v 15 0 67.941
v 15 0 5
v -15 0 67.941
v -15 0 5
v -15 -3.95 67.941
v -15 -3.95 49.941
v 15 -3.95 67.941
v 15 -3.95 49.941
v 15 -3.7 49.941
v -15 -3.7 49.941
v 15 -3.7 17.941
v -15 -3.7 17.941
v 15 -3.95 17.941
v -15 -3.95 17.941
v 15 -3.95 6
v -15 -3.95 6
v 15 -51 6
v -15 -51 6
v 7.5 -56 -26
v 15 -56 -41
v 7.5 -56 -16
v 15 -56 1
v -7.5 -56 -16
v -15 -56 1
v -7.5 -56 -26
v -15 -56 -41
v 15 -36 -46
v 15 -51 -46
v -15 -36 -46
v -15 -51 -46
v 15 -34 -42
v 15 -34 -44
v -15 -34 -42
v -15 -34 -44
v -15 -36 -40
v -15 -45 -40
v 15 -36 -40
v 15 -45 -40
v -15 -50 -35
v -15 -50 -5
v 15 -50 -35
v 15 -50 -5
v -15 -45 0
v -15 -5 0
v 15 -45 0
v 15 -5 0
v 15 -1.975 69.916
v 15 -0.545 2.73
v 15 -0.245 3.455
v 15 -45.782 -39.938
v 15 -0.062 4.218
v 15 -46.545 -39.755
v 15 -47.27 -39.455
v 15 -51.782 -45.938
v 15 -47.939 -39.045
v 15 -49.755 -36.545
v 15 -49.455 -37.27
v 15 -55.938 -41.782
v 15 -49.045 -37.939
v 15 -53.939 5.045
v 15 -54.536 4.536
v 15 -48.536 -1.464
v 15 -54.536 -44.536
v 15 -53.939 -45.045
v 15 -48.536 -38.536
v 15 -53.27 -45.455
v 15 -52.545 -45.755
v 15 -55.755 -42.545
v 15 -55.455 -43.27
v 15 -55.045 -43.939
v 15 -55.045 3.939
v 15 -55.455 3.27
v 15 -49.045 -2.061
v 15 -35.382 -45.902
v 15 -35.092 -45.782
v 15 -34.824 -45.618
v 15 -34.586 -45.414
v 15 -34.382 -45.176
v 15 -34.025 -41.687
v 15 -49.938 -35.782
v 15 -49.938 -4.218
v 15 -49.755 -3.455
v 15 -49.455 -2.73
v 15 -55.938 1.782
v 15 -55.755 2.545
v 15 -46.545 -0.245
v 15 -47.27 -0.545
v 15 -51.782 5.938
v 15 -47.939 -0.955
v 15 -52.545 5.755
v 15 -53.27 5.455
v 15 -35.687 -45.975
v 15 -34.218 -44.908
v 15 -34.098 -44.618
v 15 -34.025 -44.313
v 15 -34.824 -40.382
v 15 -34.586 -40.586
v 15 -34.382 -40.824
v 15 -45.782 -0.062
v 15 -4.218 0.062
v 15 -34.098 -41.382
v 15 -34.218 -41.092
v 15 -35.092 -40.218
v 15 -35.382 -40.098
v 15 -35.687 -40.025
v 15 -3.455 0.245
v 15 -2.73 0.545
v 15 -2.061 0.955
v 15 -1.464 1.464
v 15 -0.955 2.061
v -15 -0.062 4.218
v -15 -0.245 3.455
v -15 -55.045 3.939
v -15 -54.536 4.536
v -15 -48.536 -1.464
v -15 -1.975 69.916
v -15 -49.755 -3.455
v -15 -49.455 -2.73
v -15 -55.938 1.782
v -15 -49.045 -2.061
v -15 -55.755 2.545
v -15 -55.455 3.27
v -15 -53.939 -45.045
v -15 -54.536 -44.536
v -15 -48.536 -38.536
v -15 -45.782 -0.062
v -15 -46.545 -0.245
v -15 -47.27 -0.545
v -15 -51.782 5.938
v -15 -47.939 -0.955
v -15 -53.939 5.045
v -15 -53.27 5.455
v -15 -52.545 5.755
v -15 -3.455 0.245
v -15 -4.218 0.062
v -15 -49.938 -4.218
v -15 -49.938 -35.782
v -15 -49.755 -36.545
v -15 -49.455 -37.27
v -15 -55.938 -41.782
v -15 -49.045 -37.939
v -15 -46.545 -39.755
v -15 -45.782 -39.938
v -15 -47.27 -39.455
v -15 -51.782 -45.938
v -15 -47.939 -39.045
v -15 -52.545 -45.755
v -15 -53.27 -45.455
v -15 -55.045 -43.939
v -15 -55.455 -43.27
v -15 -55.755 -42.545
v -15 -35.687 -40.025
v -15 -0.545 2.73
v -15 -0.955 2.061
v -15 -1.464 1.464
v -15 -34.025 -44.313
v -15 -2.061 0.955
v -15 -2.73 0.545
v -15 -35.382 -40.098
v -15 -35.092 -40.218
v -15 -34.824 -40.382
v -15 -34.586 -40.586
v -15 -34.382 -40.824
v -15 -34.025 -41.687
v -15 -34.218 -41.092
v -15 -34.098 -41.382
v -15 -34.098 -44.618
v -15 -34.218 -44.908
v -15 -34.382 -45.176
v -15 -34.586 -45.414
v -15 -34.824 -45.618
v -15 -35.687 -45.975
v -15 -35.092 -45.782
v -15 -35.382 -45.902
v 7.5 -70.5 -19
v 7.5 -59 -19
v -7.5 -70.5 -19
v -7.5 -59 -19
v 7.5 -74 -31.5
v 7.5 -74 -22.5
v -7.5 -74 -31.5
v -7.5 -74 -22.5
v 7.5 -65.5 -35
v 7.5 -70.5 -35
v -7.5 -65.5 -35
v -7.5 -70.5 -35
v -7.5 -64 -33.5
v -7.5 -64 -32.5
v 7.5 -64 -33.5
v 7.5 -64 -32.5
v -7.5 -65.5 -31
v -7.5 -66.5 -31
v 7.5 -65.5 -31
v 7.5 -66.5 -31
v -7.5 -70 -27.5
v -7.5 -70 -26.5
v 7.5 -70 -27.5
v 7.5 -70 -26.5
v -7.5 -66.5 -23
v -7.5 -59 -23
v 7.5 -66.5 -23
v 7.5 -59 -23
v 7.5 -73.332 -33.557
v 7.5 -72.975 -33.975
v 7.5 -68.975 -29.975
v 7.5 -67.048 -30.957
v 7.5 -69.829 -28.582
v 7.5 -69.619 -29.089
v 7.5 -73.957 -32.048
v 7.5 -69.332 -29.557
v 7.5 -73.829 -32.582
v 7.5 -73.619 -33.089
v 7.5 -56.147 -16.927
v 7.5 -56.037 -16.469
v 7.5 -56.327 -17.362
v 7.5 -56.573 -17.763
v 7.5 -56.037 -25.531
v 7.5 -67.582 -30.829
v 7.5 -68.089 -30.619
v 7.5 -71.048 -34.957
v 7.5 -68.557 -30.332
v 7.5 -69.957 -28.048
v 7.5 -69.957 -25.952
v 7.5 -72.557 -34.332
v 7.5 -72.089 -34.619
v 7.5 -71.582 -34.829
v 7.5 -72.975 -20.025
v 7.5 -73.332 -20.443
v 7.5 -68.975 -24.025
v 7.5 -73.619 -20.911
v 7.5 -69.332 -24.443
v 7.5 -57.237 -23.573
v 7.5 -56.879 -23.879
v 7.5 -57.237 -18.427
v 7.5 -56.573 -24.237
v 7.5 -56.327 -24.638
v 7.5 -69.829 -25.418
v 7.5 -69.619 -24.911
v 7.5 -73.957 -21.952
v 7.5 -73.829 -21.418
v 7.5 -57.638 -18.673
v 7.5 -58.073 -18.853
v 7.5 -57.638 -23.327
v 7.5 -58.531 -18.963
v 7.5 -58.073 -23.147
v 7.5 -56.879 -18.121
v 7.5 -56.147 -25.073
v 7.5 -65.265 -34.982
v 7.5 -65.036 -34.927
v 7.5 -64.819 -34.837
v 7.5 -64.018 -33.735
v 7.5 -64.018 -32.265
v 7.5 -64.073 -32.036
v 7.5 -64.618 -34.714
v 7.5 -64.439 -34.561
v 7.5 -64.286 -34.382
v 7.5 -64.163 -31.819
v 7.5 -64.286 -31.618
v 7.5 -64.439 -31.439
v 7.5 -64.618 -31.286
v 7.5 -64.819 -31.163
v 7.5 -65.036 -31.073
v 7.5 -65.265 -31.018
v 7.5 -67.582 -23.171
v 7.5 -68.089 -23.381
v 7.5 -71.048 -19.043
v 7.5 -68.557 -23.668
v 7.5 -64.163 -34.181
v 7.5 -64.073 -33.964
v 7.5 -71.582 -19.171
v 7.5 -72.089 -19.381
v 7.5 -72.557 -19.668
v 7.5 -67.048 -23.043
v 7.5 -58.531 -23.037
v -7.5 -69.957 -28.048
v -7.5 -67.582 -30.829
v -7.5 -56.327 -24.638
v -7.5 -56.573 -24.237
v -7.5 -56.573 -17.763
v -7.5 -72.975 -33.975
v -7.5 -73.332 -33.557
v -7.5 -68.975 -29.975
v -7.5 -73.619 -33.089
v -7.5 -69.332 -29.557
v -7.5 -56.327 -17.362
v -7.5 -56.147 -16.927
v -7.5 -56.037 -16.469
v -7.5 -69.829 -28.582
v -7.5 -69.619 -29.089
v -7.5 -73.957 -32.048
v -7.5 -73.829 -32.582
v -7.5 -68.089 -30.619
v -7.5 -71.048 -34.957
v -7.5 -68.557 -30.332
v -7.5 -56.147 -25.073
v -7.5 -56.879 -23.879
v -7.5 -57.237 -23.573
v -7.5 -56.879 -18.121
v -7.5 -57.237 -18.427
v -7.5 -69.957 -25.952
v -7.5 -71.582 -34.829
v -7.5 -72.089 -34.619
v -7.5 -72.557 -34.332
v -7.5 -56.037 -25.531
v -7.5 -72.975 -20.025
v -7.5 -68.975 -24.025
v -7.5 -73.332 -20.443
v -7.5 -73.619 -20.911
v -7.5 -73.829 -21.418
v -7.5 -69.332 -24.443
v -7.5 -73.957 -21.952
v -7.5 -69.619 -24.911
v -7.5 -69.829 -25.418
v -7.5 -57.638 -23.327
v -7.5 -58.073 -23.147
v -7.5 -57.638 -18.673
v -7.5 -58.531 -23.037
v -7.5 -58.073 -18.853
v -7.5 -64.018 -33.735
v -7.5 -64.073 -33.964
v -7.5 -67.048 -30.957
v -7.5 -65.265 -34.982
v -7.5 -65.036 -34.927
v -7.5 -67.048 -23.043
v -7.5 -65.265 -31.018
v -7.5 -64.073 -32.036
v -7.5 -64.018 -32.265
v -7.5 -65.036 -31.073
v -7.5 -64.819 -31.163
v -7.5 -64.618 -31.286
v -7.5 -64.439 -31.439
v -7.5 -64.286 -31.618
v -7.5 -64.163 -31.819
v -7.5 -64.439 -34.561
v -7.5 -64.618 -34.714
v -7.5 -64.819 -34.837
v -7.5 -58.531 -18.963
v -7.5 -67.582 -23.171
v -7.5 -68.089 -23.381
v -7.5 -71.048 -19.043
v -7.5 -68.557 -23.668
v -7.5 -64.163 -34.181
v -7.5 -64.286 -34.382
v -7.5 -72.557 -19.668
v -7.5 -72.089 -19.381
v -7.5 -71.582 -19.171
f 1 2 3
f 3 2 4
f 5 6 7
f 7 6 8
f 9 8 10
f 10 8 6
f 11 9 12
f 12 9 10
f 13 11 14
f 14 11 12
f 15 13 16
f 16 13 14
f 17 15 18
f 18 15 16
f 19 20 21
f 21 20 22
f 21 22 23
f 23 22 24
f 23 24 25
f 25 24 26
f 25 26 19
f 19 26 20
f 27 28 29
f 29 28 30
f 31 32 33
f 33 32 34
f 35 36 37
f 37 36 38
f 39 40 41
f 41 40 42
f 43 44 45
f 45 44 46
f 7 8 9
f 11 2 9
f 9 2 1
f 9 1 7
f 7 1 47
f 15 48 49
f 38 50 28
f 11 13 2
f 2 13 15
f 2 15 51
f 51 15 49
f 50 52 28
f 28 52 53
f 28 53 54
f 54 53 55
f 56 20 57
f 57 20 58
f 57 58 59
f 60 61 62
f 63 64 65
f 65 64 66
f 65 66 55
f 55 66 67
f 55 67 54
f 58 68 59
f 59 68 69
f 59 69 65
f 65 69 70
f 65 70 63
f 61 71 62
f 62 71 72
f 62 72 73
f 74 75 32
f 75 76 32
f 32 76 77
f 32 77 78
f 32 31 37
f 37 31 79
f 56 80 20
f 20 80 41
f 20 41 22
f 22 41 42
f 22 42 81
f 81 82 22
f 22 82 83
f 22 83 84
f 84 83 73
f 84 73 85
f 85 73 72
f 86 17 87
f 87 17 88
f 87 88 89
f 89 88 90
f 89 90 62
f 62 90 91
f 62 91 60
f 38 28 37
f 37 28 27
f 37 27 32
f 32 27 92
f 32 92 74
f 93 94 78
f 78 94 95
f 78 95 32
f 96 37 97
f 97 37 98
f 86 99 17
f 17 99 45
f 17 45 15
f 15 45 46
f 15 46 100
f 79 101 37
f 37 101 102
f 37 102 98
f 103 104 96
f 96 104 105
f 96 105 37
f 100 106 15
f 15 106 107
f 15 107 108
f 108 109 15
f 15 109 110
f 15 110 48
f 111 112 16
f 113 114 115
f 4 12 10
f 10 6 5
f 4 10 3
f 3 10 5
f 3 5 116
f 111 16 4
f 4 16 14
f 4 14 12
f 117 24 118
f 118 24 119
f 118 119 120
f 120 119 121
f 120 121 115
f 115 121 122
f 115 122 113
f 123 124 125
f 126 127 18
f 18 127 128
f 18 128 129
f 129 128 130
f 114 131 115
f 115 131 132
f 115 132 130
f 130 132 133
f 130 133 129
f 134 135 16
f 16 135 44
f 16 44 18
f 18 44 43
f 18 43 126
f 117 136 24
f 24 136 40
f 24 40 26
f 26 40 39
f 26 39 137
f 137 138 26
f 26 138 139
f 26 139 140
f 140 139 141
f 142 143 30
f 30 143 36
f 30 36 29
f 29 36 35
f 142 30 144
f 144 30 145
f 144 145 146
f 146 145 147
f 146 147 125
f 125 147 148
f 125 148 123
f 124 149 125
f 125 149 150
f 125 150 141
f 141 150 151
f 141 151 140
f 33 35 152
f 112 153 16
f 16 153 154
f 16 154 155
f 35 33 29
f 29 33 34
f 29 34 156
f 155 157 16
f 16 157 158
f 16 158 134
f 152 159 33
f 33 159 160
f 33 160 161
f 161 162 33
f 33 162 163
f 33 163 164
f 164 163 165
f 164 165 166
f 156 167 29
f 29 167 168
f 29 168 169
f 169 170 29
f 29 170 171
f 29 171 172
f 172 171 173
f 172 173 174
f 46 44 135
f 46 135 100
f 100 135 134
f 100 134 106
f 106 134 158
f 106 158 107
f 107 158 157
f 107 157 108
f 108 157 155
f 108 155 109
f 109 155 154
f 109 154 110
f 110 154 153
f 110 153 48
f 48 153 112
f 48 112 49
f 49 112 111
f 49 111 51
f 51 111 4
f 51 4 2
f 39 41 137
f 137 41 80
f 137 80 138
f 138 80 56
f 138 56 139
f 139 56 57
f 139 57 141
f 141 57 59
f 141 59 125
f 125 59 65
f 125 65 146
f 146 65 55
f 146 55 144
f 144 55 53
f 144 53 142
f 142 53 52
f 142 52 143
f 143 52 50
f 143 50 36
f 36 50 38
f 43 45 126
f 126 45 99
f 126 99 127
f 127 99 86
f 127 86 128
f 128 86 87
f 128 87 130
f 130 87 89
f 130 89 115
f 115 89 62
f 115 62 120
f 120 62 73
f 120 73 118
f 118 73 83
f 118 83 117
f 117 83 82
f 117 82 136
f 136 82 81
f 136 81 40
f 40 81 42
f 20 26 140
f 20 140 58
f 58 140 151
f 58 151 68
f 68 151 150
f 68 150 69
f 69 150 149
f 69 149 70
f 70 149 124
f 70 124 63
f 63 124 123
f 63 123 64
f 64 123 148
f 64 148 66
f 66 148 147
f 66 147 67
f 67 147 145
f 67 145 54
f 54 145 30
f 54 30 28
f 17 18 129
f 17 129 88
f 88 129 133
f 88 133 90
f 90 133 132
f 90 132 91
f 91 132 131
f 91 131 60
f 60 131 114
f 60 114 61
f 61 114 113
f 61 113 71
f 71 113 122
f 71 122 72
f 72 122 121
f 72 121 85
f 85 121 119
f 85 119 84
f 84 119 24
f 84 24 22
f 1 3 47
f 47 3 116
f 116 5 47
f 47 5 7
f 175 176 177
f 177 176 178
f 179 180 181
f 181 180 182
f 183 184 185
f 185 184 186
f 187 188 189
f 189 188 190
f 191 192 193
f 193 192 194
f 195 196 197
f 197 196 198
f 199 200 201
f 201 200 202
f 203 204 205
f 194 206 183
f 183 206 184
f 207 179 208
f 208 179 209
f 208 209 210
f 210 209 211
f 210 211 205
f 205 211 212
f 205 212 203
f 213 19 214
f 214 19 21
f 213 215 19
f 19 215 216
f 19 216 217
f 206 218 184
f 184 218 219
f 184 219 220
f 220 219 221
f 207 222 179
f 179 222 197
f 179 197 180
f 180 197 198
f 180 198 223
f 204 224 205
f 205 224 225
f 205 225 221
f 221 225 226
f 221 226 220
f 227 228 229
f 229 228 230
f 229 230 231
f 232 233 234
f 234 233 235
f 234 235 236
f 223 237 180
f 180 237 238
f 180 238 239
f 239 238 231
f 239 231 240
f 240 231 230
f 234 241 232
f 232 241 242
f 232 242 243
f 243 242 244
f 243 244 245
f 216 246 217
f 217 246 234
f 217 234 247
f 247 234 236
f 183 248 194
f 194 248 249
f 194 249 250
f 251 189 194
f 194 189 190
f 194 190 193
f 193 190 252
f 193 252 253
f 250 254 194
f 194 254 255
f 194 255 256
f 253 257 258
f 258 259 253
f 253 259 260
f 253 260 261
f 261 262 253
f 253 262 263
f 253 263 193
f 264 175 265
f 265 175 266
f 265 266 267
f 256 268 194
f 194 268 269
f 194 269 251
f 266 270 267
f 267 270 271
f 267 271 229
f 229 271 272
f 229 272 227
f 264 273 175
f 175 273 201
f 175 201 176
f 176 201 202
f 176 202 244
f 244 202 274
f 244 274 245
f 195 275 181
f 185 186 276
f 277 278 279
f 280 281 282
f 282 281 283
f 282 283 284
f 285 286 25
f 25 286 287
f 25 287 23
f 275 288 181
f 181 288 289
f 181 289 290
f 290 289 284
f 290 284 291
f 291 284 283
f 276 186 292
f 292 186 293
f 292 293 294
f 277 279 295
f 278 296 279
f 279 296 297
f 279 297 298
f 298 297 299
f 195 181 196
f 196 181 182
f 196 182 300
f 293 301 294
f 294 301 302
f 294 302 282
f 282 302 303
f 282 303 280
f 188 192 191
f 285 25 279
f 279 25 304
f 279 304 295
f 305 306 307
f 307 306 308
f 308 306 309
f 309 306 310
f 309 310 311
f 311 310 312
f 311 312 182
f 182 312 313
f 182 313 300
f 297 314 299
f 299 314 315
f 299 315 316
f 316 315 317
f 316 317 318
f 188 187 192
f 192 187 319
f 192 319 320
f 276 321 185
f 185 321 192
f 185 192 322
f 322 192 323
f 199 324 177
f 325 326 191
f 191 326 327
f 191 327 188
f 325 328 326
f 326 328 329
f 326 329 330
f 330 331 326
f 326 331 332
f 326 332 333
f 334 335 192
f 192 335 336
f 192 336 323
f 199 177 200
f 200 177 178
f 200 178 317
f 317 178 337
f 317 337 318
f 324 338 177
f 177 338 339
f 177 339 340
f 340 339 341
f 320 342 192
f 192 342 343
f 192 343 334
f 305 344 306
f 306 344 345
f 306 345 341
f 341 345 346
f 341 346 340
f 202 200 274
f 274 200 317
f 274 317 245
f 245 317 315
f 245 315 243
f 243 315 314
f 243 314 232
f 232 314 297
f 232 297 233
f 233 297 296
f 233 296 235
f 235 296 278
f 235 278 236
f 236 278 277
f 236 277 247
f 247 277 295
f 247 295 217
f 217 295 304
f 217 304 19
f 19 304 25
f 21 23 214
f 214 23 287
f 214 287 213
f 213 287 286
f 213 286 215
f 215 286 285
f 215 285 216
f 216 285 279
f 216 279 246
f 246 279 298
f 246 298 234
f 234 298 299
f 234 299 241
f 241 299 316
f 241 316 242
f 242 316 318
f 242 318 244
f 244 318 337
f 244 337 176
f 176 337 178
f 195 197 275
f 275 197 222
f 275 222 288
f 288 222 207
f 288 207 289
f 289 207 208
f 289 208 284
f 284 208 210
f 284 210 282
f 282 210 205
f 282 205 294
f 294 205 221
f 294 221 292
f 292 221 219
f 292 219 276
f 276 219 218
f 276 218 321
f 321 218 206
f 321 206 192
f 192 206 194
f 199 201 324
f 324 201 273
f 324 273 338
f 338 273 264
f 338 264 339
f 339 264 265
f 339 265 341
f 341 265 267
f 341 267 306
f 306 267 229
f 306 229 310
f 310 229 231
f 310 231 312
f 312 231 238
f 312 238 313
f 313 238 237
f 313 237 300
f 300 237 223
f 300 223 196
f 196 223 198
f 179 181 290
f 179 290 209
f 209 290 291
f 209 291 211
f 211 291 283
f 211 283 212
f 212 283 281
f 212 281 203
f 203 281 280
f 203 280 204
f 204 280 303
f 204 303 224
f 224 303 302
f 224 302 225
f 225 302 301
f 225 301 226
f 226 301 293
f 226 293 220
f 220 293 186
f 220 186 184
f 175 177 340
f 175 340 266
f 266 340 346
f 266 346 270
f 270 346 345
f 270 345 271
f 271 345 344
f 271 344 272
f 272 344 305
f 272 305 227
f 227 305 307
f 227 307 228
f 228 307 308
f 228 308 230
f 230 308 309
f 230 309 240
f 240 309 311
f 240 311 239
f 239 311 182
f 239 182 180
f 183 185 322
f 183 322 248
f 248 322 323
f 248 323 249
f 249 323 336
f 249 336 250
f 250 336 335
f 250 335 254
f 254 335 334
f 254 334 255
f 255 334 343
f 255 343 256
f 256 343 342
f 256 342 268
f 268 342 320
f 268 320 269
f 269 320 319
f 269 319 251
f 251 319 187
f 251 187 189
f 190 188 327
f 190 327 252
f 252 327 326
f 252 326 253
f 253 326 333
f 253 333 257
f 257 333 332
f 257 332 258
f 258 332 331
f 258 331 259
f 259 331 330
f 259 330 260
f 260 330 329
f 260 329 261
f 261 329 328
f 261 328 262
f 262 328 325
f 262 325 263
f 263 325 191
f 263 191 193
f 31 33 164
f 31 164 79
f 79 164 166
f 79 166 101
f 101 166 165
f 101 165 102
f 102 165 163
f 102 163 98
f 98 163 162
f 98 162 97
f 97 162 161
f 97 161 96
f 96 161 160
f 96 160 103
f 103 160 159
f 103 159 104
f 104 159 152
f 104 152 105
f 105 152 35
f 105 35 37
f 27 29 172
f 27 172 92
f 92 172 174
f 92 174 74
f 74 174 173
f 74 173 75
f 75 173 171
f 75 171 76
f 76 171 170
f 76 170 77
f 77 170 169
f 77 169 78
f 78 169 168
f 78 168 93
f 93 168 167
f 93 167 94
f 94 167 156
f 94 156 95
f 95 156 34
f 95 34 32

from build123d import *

# Parameters (mm, degrees)
BOSS_EXTRUDE1_DEPTH = 15
FILLET2_R           = 5
FILLET3_R           = 5
FILLET4_R           = 5
CHAMFER1_SIZE       = 2
BOSS_EXTRUDE2_DEPTH = 7.5
FILLET5_R           = 3
FILLET6_R           = 3.5
FILLET7_R           = 3.5
FILLET8_R           = 1.5
FILLET9_R           = 2


with BuildPart() as part:
    # Sketch1 → Boss-Extrude1 (new, symmetric)
    with BuildSketch(Plane(origin=(0, 0, 0), x_dir=(0, 0, -1), z_dir=(1, 0, 0))):
        Polygon((0, 0), (-15, 0), (-69.940788655, 0), (-69.940788655, -3.95), (-49.940788655, -3.95), (-49.940788655, -3.7), (-17.940788655, -3.7), (-17.940788655, -3.95), (-13.226857143, -3.95), (-6, -3.95), (-6, -56), (46, -56), (46, -34), (40, -34), (40, -50), (0, -50), align=None)
    extrude(amount=BOSS_EXTRUDE1_DEPTH, both=True)

    # Fillet2
    fillet2_edges = [part.edges().sort_by_distance(p)[0] for p in [
        (0, 0, 0),
    ]]
    fillet(fillet2_edges, radius=FILLET2_R)

    # Fillet3
    fillet3_edges = [part.edges().sort_by_distance(p)[0] for p in [
        (0, -50, 0),
        (0, -50, -40),
    ]]
    fillet(fillet3_edges, radius=FILLET3_R)

    # Fillet4
    fillet4_edges = [part.edges().sort_by_distance(p)[0] for p in [
        (0, -56, -46),
        (0, -56, 6),
    ]]
    fillet(fillet4_edges, radius=FILLET4_R)

    # Chamfer1
    # the kernel refuses this chamfer: 2 mm, written as the material it takes off along each edge
    with BuildSketch(Plane(origin=(-20.143365976, -3.95, 69.940788655), x_dir=(0, -0.027495876610586414, -0.9996219169112968), z_dir=(1, 0, 0))) as chamfer1_piece_1:
        Polygon((CHAMFER1_SIZE * 0.999621916911, CHAMFER1_SIZE * 0.0274958766106), (-CHAMFER1_SIZE * 0.0274958766106, CHAMFER1_SIZE * 0.999621916911), (0, 0), align=None)
    extrude(amount=40.286731952, mode=Mode.SUBTRACT)
    with BuildSketch(Plane(origin=(-20.143365976, 0, 69.940788655), x_dir=(0, 0.027495876610585952, -0.9996219169112968), z_dir=(1, 0, 0))) as chamfer1_piece_2:
        Polygon((CHAMFER1_SIZE * 0.999621916911, -CHAMFER1_SIZE * 0.0274958766106), (-CHAMFER1_SIZE * 0.0274958766106, -CHAMFER1_SIZE * 0.999621916911), (0, 0), align=None)
    extrude(amount=40.286731952, mode=Mode.SUBTRACT)

    # Sketch3 → Boss-Extrude2 (add, symmetric)
    with BuildSketch(Plane(origin=(0, 0, 0), x_dir=(0, 0, -1), z_dir=(1, 0, 0))):
        Polygon((19, -56), (19, -74), (35, -74), (35, -64), (31, -64), (31, -70), (23, -70), (23, -56), align=None)
    extrude(amount=BOSS_EXTRUDE2_DEPTH, both=True)

    # Fillet5
    fillet5_edges = [part.edges().sort_by_distance(p)[0] for p in [
        (0, -56, -23),
        (0, -56, -19),
    ]]
    fillet(fillet5_edges, radius=FILLET5_R)

    # Fillet6
    fillet6_edges = [part.edges().sort_by_distance(p)[0] for p in [
        (0, -70, -31),
        (0, -70, -23),
    ]]
    fillet(fillet6_edges, radius=FILLET6_R)

    # Fillet7
    fillet7_edges = [part.edges().sort_by_distance(p)[0] for p in [
        (0, -74, -19),
        (0, -74, -35),
    ]]
    fillet(fillet7_edges, radius=FILLET7_R)

    # Fillet8
    fillet8_edges = [part.edges().sort_by_distance(p)[0] for p in [
        (0, -64, -35),
        (0, -64, -31),
    ]]
    fillet(fillet8_edges, radius=FILLET8_R)

    # Fillet9
    fillet9_edges = [part.edges().sort_by_distance(p)[0] for p in [
        (0, -34, -40),
        (0, -34, -46),
    ]]
    fillet(fillet9_edges, radius=FILLET9_R)


solid = part.part
